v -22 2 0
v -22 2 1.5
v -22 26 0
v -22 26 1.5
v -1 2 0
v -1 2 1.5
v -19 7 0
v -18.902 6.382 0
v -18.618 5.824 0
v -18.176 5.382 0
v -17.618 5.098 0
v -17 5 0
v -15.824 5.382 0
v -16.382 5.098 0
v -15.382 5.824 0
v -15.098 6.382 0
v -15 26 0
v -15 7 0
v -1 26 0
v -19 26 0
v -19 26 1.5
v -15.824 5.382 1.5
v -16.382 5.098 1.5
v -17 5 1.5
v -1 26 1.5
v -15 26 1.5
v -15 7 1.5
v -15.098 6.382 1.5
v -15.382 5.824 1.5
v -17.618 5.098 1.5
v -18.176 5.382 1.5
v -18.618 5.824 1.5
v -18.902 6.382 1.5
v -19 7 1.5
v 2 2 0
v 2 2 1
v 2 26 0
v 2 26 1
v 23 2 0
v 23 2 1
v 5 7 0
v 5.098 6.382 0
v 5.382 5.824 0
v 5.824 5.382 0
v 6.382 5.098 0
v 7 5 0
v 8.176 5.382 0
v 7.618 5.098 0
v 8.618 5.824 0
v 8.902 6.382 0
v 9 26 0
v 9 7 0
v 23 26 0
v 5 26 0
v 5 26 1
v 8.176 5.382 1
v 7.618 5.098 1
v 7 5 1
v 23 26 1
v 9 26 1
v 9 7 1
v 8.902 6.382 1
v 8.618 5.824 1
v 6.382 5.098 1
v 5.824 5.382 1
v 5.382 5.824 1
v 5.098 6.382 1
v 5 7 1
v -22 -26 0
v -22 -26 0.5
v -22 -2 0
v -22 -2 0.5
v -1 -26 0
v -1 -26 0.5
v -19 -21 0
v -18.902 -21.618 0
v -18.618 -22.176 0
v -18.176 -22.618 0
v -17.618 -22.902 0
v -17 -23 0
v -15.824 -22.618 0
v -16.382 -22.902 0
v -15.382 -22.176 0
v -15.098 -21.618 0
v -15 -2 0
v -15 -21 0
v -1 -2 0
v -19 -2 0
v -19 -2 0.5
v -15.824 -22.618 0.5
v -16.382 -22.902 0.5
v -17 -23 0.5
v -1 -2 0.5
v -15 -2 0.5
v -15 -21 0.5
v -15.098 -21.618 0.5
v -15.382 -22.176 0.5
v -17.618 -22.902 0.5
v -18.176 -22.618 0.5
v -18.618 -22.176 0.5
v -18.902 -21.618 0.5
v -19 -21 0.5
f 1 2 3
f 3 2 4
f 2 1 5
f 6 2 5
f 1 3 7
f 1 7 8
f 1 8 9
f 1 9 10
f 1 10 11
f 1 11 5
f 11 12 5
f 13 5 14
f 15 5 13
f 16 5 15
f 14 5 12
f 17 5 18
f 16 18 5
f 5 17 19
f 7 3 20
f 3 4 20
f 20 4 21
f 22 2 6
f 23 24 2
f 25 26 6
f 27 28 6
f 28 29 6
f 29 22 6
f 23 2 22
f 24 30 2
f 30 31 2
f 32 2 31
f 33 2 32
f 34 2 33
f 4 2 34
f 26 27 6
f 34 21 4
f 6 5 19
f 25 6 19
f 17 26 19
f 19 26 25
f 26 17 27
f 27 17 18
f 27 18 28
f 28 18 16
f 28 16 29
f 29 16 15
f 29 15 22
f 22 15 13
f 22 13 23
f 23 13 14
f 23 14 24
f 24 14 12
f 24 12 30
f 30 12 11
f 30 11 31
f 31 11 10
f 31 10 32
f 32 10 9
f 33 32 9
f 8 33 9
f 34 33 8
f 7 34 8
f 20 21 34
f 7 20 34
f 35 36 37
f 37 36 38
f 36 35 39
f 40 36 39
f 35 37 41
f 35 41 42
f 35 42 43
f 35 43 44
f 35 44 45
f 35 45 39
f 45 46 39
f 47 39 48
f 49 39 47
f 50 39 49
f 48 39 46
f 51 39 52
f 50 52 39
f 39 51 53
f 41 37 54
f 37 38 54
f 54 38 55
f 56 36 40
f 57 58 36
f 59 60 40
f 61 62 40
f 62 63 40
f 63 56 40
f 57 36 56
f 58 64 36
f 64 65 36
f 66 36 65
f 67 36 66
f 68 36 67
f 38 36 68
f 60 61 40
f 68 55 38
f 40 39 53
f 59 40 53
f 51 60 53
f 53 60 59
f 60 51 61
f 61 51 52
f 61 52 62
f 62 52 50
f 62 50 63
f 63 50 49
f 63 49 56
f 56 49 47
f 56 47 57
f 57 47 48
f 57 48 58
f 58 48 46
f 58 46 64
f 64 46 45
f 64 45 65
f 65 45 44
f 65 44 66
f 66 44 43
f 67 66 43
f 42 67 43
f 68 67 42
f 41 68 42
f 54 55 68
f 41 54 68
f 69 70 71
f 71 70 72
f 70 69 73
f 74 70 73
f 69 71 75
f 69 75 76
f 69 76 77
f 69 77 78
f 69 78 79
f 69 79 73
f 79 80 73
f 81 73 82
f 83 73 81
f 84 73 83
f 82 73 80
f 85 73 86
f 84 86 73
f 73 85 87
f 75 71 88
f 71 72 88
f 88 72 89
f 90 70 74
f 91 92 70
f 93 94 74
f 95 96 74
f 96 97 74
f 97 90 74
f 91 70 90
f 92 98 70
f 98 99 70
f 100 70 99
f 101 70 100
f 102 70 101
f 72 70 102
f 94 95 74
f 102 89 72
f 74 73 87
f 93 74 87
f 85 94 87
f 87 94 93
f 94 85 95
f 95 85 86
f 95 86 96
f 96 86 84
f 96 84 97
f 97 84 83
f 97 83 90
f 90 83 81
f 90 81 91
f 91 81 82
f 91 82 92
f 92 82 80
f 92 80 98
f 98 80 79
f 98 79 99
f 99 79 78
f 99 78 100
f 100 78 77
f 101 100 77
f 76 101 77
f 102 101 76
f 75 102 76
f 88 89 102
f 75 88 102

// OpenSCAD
// Spacer for Matt's y-belt mounts

module spacer(thickness)
{
	difference() {
		cube([21,24,thickness]);
		translate([3,5,-1]) cube([4,20,thickness+2]);
		translate([5,5,-1]) cylinder(h=thickness+2,r=2, $fn=20);
	}
}

translate([-22,2,0]) spacer(1.5);

translate([2,2,0]) spacer(1.0);

translate([-22,-26,0]) spacer(0.5);
